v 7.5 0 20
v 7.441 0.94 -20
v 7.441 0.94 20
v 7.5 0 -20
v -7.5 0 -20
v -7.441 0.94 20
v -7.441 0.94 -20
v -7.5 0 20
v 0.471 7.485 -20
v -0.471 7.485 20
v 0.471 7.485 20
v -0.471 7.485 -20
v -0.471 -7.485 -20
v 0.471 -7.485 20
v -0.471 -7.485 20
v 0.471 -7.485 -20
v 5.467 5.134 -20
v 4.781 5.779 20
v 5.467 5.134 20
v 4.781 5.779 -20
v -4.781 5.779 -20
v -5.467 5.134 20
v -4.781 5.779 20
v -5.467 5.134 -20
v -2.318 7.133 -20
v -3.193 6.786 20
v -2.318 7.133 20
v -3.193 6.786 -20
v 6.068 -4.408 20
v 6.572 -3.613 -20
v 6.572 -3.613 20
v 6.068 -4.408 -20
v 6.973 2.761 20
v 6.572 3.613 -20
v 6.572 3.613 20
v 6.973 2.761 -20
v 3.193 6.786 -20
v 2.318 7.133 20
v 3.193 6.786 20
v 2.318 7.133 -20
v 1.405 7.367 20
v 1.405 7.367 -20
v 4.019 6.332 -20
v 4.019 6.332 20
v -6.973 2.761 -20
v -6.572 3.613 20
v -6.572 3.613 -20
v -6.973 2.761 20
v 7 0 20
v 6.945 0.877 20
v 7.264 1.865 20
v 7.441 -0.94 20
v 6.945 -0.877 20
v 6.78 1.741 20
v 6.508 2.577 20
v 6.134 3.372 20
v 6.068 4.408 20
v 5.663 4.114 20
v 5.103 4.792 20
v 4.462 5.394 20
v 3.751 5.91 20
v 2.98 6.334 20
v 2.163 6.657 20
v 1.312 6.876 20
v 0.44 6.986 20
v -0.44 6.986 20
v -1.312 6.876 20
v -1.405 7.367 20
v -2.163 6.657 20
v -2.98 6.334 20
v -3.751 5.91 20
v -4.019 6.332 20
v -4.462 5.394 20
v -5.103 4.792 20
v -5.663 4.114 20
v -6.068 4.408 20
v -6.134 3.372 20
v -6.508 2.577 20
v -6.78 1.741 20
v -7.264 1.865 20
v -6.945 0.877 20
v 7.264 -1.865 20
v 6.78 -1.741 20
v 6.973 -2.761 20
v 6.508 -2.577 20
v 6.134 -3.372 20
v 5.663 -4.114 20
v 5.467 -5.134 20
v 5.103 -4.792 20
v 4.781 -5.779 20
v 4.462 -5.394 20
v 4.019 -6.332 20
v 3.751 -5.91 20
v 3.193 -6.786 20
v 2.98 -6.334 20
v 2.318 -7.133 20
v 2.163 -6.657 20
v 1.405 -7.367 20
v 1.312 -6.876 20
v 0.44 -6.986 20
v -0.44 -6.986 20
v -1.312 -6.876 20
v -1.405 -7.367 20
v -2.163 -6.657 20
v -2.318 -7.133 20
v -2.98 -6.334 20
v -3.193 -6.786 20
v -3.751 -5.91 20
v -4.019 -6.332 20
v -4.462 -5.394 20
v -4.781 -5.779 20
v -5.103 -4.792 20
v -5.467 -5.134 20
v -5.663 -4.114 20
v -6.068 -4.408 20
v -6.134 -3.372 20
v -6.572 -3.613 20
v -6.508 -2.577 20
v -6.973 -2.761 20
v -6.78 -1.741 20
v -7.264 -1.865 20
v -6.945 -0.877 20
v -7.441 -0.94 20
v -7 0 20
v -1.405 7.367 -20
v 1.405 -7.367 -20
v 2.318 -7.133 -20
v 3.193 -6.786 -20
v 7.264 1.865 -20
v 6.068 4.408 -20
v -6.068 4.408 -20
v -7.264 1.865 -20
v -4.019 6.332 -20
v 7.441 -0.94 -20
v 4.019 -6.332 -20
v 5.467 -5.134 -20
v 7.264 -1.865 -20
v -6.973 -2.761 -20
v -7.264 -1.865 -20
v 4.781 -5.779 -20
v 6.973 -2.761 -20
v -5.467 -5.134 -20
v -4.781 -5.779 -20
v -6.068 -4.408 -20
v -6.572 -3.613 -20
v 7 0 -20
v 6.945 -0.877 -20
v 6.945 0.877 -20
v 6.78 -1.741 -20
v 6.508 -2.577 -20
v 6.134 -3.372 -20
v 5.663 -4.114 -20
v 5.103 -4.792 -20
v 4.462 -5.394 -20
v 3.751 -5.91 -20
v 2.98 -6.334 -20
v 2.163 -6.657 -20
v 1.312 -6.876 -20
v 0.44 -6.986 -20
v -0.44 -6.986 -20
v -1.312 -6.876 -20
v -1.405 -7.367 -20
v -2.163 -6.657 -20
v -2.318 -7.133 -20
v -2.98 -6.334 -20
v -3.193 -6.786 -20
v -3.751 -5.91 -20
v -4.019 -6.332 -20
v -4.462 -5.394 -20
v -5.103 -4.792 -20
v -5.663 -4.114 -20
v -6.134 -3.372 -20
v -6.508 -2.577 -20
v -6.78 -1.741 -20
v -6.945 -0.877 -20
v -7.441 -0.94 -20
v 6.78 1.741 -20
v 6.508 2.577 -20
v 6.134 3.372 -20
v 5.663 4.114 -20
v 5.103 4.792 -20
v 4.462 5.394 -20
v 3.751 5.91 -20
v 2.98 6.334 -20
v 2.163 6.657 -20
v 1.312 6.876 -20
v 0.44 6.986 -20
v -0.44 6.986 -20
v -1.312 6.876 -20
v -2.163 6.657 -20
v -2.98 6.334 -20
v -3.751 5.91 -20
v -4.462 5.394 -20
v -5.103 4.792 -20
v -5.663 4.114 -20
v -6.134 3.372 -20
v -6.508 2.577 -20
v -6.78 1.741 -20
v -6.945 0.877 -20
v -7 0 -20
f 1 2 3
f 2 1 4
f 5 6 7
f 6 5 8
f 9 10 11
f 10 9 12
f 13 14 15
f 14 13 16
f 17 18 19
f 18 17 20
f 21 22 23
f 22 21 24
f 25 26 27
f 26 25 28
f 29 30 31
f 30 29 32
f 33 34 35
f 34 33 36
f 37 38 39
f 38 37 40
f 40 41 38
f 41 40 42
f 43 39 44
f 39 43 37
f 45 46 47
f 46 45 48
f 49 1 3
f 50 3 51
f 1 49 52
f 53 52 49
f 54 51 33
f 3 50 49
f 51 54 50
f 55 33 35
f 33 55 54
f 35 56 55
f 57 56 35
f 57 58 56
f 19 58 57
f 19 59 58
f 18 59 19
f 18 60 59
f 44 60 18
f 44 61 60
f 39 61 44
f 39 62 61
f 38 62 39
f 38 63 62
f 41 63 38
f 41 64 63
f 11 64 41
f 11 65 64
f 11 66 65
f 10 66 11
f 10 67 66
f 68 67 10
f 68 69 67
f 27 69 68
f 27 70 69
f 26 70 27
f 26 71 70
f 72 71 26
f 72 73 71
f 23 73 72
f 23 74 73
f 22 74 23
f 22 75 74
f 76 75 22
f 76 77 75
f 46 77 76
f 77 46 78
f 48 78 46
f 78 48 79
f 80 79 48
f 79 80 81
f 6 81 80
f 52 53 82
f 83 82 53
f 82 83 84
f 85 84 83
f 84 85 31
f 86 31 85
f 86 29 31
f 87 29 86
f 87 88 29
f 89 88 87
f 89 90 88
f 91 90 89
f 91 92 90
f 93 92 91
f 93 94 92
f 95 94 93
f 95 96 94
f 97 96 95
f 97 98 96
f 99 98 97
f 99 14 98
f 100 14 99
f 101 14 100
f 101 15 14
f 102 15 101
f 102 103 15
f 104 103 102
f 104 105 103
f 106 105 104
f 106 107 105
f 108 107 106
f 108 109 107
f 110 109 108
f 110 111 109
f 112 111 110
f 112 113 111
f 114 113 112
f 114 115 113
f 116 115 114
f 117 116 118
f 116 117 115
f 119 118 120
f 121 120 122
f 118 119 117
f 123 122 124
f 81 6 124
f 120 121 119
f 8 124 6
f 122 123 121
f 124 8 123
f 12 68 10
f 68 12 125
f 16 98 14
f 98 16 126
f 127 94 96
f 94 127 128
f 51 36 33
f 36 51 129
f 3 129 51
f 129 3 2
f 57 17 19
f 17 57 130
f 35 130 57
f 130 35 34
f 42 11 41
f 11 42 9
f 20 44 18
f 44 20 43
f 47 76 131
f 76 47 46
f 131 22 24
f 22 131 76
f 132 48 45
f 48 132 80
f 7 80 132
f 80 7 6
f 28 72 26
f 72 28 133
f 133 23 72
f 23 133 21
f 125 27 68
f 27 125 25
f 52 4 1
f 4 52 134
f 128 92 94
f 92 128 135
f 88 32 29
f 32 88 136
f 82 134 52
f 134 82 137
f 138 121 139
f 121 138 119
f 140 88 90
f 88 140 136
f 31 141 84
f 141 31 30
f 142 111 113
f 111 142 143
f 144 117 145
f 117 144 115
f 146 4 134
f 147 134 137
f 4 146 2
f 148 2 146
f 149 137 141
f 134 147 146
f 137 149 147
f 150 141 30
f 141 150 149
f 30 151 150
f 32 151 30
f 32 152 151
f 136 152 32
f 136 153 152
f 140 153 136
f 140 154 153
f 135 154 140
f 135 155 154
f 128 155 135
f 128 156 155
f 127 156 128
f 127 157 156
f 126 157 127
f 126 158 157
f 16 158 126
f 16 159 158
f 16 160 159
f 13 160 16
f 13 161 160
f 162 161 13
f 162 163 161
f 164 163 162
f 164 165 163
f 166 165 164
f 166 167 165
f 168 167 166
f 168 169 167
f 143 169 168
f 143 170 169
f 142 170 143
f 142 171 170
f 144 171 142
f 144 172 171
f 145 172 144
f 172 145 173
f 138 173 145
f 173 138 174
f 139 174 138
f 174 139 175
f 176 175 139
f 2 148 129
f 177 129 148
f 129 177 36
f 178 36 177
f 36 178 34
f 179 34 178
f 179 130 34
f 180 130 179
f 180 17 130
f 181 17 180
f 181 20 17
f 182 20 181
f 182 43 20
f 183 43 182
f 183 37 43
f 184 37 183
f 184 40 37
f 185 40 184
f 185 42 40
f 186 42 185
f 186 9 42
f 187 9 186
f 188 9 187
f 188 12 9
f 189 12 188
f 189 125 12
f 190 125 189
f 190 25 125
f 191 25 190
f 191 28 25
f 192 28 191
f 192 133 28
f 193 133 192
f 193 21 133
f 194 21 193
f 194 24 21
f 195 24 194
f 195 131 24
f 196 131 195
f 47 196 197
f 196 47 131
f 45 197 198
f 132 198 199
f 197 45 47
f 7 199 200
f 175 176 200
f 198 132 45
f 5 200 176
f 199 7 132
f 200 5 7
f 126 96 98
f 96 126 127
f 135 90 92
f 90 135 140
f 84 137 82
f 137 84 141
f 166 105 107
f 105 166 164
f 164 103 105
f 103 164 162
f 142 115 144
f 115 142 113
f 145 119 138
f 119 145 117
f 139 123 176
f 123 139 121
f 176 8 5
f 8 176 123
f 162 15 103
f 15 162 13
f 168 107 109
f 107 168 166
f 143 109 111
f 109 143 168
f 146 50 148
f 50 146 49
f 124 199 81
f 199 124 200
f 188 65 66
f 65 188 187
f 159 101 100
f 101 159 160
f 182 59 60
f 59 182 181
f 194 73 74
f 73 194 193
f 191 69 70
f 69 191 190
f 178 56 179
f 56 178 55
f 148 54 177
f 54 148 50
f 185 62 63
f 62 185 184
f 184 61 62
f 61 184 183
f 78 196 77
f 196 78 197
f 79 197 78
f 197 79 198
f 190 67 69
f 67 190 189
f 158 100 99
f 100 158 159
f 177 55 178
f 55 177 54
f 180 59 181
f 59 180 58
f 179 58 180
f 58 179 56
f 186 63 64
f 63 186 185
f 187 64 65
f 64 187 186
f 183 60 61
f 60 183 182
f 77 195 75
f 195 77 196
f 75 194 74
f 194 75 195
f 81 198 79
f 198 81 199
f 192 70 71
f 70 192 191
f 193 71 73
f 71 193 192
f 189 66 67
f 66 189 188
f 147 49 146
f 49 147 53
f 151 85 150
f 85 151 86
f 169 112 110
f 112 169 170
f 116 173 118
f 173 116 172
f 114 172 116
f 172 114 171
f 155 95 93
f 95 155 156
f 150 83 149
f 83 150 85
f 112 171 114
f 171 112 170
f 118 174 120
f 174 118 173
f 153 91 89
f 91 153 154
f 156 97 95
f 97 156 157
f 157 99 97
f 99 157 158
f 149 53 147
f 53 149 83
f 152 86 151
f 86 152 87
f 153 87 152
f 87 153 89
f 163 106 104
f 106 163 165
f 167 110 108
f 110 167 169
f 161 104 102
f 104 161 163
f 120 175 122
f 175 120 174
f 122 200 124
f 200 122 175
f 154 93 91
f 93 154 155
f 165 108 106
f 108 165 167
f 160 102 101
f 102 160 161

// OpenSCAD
$fn = 50;


difference() {
	union() {
		translate(v = [0, 0, -20.0000000000]) {
			cylinder(h = 40, r = 7.5000000000);
		}
	}
	union() {
		translate(v = [0, 0, -100.0000000000]) {
			cylinder(h = 200, r = 7);
		}
	}
}
